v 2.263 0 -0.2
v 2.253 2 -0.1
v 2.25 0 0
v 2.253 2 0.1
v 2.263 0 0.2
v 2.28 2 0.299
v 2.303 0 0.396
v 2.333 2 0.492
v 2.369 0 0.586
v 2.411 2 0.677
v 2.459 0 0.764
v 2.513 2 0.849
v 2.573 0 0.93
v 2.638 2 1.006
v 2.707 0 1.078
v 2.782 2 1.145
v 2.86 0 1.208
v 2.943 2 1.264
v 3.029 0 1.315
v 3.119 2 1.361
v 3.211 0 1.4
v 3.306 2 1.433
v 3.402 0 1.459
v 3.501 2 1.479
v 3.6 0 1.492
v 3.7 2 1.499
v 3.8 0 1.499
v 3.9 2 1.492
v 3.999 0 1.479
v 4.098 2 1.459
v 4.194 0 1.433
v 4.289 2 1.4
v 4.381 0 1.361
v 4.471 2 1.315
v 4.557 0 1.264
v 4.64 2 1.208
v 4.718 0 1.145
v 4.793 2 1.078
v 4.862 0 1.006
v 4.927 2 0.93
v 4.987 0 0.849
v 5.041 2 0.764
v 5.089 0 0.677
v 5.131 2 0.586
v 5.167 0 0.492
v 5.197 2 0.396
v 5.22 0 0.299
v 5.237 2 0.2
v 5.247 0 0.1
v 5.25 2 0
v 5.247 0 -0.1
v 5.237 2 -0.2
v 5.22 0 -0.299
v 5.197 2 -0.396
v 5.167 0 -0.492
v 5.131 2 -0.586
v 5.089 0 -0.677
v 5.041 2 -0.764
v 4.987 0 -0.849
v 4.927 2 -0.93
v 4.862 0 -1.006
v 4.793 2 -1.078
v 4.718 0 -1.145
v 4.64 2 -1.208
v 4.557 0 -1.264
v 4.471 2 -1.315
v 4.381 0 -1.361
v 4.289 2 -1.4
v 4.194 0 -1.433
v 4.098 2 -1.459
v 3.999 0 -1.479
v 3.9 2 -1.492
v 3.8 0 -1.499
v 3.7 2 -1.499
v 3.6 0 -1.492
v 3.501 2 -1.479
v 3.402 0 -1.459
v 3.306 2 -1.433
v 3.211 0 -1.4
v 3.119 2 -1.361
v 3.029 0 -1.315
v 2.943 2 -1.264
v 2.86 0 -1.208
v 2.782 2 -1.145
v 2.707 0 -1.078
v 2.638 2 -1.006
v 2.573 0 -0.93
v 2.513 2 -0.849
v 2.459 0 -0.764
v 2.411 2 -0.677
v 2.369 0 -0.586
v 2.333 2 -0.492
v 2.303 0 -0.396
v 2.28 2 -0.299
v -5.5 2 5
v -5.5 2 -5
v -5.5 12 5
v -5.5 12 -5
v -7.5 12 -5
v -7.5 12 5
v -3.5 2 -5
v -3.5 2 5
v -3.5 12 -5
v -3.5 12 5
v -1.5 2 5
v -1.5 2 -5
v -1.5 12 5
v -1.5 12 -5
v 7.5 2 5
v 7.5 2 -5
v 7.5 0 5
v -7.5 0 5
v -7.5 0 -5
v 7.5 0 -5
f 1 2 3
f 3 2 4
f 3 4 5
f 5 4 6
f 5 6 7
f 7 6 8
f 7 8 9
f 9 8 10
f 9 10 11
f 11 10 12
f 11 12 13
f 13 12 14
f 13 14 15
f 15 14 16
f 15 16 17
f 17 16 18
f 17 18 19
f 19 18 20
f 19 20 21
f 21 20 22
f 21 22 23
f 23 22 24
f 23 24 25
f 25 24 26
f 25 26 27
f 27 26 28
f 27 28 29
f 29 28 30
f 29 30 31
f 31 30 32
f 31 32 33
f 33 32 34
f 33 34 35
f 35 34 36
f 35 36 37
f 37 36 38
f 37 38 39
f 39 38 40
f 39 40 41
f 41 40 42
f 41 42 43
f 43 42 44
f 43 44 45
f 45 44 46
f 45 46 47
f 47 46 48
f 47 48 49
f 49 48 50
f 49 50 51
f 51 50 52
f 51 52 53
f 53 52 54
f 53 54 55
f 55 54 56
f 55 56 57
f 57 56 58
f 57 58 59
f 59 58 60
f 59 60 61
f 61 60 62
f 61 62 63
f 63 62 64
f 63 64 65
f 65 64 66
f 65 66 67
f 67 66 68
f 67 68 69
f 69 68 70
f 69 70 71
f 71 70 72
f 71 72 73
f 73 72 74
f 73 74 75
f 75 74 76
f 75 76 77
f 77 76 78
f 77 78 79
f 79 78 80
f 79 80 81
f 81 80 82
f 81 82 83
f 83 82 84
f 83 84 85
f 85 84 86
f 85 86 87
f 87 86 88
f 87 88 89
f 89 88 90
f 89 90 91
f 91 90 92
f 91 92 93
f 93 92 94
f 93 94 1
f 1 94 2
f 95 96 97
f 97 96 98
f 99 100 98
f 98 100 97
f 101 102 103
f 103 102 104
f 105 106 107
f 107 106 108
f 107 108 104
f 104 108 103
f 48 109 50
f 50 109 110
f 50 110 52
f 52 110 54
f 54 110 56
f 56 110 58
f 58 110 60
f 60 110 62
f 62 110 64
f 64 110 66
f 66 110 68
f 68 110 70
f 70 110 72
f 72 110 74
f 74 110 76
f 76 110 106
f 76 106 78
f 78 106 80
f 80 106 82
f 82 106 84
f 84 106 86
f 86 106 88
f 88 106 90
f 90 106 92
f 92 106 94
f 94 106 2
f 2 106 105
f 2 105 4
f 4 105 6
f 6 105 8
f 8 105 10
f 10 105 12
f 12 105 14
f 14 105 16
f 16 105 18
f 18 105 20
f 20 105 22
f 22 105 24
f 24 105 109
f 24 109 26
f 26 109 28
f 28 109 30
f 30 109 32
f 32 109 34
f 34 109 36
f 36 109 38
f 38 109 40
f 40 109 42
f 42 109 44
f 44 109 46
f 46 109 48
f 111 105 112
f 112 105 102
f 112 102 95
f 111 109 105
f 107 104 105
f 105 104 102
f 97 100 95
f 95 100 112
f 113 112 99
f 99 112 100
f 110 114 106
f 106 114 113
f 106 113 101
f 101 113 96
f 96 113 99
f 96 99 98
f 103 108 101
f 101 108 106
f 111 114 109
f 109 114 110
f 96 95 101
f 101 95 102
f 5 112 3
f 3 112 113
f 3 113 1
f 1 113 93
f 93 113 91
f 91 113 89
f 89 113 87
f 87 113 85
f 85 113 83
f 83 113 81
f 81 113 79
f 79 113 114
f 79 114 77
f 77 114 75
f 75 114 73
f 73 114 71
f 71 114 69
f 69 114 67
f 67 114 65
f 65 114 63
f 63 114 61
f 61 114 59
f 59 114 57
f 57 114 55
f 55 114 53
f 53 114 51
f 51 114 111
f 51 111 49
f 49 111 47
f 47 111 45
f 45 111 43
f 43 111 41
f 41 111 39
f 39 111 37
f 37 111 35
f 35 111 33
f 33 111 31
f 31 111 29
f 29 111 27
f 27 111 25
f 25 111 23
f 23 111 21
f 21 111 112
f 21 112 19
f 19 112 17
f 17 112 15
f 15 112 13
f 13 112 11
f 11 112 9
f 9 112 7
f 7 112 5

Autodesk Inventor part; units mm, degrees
ref_plane "YZ Plane" through (0, 0, 0) normal (1, 0, 0) x (0, 1, 0)
ref_plane "XZ Plane" through (0, 0, 0) normal (0, 1, 0) x (-1, 0, 0)
ref_plane "XY Plane" through (0, 0, 0) normal (0, 0, 1) x (1, 0, 0)
sketch "Esquisse1" plane through (0, 0, 0) normal (0, 1, 0) x (-1, 0, 0)
  line L0 (7.5, 5) -> (-7.5, 5)
  line L1 (-7.5, 5) -> (-7.5, -5)
  line L2 (-7.5, -5) -> (7.5, -5)
  line L3 (7.5, -5) -> (7.5, 5)
  line L4 (7.5, 5) -> (-7.5, -5) construction
  line L5 (7.5, -5) -> (-7.5, 5) construction
  point P0 (0, 0)
  point P1 (0, 0)
  dimension "d0" = 10
  dimension "d1" = 15
extrude "Extrusion1" add sketch "Esquisse1" along normal blind 2
sketch "Esquisse2" plane through (0, 2, 0) normal (0, 1, 0) x (1, 0, 0)
  line L0 (-7.5, 5) -> (-7.5, -5) projected
  line L1 (7.5, 5) -> (-7.5, 5) projected
  line L2 (-7.5, -5) -> (-5.5, -5)
  line L3 (-5.5, -5) -> (-5.5, 5)
  line L4 (-5.5, 5) -> (-7.5, 5)
  line L5 (-7.5, 5) -> (-7.5, -5)
  line L6 (-7.5, -5) -> (7.5, -5) projected
  line L7 (-3.5, -5) -> (-1.5, -5)
  line L8 (-1.5, -5) -> (-1.5, 5)
  line L9 (-1.5, 5) -> (-3.5, 5)
  line L10 (-3.5, 5) -> (-3.5, -5)
  point P0 (0, 0)
  point P1 (-3.5, 5)
  dimension "d4" = 2
  dimension "d5" = 2
  dimension "d6" = 2
extrude "Extrusion2" add sketch "Esquisse2" along normal blind 10 contours L1 L3 L2 L0 | L1 L8 L6 L10
sketch "Esquisse3" plane through (0, 2, 0) normal (0, 1, 0) x (1, 0, 0)
  circle A0 centre (3.75, 0) radius 1.5
  line L0 (-1.5, -5) -> (7.5, -5) projected
  line L1 (7.5, 5) -> (-1.5, 5) projected
  line L2 (0, -5) -> (7.5, 5) construction
  line L3 (7.5, -5) -> (7.5, 5) projected
  line L4 (0, 5) -> (7.5, -5) construction
  point P0 (0, 0)
  point P1 (3.75, 0)
  dimension "d9" = 3
extrude "Extrusion3" cut sketch "Esquisse3" against normal blind 10
properties part number "TOF_holder_Impression 3D"
